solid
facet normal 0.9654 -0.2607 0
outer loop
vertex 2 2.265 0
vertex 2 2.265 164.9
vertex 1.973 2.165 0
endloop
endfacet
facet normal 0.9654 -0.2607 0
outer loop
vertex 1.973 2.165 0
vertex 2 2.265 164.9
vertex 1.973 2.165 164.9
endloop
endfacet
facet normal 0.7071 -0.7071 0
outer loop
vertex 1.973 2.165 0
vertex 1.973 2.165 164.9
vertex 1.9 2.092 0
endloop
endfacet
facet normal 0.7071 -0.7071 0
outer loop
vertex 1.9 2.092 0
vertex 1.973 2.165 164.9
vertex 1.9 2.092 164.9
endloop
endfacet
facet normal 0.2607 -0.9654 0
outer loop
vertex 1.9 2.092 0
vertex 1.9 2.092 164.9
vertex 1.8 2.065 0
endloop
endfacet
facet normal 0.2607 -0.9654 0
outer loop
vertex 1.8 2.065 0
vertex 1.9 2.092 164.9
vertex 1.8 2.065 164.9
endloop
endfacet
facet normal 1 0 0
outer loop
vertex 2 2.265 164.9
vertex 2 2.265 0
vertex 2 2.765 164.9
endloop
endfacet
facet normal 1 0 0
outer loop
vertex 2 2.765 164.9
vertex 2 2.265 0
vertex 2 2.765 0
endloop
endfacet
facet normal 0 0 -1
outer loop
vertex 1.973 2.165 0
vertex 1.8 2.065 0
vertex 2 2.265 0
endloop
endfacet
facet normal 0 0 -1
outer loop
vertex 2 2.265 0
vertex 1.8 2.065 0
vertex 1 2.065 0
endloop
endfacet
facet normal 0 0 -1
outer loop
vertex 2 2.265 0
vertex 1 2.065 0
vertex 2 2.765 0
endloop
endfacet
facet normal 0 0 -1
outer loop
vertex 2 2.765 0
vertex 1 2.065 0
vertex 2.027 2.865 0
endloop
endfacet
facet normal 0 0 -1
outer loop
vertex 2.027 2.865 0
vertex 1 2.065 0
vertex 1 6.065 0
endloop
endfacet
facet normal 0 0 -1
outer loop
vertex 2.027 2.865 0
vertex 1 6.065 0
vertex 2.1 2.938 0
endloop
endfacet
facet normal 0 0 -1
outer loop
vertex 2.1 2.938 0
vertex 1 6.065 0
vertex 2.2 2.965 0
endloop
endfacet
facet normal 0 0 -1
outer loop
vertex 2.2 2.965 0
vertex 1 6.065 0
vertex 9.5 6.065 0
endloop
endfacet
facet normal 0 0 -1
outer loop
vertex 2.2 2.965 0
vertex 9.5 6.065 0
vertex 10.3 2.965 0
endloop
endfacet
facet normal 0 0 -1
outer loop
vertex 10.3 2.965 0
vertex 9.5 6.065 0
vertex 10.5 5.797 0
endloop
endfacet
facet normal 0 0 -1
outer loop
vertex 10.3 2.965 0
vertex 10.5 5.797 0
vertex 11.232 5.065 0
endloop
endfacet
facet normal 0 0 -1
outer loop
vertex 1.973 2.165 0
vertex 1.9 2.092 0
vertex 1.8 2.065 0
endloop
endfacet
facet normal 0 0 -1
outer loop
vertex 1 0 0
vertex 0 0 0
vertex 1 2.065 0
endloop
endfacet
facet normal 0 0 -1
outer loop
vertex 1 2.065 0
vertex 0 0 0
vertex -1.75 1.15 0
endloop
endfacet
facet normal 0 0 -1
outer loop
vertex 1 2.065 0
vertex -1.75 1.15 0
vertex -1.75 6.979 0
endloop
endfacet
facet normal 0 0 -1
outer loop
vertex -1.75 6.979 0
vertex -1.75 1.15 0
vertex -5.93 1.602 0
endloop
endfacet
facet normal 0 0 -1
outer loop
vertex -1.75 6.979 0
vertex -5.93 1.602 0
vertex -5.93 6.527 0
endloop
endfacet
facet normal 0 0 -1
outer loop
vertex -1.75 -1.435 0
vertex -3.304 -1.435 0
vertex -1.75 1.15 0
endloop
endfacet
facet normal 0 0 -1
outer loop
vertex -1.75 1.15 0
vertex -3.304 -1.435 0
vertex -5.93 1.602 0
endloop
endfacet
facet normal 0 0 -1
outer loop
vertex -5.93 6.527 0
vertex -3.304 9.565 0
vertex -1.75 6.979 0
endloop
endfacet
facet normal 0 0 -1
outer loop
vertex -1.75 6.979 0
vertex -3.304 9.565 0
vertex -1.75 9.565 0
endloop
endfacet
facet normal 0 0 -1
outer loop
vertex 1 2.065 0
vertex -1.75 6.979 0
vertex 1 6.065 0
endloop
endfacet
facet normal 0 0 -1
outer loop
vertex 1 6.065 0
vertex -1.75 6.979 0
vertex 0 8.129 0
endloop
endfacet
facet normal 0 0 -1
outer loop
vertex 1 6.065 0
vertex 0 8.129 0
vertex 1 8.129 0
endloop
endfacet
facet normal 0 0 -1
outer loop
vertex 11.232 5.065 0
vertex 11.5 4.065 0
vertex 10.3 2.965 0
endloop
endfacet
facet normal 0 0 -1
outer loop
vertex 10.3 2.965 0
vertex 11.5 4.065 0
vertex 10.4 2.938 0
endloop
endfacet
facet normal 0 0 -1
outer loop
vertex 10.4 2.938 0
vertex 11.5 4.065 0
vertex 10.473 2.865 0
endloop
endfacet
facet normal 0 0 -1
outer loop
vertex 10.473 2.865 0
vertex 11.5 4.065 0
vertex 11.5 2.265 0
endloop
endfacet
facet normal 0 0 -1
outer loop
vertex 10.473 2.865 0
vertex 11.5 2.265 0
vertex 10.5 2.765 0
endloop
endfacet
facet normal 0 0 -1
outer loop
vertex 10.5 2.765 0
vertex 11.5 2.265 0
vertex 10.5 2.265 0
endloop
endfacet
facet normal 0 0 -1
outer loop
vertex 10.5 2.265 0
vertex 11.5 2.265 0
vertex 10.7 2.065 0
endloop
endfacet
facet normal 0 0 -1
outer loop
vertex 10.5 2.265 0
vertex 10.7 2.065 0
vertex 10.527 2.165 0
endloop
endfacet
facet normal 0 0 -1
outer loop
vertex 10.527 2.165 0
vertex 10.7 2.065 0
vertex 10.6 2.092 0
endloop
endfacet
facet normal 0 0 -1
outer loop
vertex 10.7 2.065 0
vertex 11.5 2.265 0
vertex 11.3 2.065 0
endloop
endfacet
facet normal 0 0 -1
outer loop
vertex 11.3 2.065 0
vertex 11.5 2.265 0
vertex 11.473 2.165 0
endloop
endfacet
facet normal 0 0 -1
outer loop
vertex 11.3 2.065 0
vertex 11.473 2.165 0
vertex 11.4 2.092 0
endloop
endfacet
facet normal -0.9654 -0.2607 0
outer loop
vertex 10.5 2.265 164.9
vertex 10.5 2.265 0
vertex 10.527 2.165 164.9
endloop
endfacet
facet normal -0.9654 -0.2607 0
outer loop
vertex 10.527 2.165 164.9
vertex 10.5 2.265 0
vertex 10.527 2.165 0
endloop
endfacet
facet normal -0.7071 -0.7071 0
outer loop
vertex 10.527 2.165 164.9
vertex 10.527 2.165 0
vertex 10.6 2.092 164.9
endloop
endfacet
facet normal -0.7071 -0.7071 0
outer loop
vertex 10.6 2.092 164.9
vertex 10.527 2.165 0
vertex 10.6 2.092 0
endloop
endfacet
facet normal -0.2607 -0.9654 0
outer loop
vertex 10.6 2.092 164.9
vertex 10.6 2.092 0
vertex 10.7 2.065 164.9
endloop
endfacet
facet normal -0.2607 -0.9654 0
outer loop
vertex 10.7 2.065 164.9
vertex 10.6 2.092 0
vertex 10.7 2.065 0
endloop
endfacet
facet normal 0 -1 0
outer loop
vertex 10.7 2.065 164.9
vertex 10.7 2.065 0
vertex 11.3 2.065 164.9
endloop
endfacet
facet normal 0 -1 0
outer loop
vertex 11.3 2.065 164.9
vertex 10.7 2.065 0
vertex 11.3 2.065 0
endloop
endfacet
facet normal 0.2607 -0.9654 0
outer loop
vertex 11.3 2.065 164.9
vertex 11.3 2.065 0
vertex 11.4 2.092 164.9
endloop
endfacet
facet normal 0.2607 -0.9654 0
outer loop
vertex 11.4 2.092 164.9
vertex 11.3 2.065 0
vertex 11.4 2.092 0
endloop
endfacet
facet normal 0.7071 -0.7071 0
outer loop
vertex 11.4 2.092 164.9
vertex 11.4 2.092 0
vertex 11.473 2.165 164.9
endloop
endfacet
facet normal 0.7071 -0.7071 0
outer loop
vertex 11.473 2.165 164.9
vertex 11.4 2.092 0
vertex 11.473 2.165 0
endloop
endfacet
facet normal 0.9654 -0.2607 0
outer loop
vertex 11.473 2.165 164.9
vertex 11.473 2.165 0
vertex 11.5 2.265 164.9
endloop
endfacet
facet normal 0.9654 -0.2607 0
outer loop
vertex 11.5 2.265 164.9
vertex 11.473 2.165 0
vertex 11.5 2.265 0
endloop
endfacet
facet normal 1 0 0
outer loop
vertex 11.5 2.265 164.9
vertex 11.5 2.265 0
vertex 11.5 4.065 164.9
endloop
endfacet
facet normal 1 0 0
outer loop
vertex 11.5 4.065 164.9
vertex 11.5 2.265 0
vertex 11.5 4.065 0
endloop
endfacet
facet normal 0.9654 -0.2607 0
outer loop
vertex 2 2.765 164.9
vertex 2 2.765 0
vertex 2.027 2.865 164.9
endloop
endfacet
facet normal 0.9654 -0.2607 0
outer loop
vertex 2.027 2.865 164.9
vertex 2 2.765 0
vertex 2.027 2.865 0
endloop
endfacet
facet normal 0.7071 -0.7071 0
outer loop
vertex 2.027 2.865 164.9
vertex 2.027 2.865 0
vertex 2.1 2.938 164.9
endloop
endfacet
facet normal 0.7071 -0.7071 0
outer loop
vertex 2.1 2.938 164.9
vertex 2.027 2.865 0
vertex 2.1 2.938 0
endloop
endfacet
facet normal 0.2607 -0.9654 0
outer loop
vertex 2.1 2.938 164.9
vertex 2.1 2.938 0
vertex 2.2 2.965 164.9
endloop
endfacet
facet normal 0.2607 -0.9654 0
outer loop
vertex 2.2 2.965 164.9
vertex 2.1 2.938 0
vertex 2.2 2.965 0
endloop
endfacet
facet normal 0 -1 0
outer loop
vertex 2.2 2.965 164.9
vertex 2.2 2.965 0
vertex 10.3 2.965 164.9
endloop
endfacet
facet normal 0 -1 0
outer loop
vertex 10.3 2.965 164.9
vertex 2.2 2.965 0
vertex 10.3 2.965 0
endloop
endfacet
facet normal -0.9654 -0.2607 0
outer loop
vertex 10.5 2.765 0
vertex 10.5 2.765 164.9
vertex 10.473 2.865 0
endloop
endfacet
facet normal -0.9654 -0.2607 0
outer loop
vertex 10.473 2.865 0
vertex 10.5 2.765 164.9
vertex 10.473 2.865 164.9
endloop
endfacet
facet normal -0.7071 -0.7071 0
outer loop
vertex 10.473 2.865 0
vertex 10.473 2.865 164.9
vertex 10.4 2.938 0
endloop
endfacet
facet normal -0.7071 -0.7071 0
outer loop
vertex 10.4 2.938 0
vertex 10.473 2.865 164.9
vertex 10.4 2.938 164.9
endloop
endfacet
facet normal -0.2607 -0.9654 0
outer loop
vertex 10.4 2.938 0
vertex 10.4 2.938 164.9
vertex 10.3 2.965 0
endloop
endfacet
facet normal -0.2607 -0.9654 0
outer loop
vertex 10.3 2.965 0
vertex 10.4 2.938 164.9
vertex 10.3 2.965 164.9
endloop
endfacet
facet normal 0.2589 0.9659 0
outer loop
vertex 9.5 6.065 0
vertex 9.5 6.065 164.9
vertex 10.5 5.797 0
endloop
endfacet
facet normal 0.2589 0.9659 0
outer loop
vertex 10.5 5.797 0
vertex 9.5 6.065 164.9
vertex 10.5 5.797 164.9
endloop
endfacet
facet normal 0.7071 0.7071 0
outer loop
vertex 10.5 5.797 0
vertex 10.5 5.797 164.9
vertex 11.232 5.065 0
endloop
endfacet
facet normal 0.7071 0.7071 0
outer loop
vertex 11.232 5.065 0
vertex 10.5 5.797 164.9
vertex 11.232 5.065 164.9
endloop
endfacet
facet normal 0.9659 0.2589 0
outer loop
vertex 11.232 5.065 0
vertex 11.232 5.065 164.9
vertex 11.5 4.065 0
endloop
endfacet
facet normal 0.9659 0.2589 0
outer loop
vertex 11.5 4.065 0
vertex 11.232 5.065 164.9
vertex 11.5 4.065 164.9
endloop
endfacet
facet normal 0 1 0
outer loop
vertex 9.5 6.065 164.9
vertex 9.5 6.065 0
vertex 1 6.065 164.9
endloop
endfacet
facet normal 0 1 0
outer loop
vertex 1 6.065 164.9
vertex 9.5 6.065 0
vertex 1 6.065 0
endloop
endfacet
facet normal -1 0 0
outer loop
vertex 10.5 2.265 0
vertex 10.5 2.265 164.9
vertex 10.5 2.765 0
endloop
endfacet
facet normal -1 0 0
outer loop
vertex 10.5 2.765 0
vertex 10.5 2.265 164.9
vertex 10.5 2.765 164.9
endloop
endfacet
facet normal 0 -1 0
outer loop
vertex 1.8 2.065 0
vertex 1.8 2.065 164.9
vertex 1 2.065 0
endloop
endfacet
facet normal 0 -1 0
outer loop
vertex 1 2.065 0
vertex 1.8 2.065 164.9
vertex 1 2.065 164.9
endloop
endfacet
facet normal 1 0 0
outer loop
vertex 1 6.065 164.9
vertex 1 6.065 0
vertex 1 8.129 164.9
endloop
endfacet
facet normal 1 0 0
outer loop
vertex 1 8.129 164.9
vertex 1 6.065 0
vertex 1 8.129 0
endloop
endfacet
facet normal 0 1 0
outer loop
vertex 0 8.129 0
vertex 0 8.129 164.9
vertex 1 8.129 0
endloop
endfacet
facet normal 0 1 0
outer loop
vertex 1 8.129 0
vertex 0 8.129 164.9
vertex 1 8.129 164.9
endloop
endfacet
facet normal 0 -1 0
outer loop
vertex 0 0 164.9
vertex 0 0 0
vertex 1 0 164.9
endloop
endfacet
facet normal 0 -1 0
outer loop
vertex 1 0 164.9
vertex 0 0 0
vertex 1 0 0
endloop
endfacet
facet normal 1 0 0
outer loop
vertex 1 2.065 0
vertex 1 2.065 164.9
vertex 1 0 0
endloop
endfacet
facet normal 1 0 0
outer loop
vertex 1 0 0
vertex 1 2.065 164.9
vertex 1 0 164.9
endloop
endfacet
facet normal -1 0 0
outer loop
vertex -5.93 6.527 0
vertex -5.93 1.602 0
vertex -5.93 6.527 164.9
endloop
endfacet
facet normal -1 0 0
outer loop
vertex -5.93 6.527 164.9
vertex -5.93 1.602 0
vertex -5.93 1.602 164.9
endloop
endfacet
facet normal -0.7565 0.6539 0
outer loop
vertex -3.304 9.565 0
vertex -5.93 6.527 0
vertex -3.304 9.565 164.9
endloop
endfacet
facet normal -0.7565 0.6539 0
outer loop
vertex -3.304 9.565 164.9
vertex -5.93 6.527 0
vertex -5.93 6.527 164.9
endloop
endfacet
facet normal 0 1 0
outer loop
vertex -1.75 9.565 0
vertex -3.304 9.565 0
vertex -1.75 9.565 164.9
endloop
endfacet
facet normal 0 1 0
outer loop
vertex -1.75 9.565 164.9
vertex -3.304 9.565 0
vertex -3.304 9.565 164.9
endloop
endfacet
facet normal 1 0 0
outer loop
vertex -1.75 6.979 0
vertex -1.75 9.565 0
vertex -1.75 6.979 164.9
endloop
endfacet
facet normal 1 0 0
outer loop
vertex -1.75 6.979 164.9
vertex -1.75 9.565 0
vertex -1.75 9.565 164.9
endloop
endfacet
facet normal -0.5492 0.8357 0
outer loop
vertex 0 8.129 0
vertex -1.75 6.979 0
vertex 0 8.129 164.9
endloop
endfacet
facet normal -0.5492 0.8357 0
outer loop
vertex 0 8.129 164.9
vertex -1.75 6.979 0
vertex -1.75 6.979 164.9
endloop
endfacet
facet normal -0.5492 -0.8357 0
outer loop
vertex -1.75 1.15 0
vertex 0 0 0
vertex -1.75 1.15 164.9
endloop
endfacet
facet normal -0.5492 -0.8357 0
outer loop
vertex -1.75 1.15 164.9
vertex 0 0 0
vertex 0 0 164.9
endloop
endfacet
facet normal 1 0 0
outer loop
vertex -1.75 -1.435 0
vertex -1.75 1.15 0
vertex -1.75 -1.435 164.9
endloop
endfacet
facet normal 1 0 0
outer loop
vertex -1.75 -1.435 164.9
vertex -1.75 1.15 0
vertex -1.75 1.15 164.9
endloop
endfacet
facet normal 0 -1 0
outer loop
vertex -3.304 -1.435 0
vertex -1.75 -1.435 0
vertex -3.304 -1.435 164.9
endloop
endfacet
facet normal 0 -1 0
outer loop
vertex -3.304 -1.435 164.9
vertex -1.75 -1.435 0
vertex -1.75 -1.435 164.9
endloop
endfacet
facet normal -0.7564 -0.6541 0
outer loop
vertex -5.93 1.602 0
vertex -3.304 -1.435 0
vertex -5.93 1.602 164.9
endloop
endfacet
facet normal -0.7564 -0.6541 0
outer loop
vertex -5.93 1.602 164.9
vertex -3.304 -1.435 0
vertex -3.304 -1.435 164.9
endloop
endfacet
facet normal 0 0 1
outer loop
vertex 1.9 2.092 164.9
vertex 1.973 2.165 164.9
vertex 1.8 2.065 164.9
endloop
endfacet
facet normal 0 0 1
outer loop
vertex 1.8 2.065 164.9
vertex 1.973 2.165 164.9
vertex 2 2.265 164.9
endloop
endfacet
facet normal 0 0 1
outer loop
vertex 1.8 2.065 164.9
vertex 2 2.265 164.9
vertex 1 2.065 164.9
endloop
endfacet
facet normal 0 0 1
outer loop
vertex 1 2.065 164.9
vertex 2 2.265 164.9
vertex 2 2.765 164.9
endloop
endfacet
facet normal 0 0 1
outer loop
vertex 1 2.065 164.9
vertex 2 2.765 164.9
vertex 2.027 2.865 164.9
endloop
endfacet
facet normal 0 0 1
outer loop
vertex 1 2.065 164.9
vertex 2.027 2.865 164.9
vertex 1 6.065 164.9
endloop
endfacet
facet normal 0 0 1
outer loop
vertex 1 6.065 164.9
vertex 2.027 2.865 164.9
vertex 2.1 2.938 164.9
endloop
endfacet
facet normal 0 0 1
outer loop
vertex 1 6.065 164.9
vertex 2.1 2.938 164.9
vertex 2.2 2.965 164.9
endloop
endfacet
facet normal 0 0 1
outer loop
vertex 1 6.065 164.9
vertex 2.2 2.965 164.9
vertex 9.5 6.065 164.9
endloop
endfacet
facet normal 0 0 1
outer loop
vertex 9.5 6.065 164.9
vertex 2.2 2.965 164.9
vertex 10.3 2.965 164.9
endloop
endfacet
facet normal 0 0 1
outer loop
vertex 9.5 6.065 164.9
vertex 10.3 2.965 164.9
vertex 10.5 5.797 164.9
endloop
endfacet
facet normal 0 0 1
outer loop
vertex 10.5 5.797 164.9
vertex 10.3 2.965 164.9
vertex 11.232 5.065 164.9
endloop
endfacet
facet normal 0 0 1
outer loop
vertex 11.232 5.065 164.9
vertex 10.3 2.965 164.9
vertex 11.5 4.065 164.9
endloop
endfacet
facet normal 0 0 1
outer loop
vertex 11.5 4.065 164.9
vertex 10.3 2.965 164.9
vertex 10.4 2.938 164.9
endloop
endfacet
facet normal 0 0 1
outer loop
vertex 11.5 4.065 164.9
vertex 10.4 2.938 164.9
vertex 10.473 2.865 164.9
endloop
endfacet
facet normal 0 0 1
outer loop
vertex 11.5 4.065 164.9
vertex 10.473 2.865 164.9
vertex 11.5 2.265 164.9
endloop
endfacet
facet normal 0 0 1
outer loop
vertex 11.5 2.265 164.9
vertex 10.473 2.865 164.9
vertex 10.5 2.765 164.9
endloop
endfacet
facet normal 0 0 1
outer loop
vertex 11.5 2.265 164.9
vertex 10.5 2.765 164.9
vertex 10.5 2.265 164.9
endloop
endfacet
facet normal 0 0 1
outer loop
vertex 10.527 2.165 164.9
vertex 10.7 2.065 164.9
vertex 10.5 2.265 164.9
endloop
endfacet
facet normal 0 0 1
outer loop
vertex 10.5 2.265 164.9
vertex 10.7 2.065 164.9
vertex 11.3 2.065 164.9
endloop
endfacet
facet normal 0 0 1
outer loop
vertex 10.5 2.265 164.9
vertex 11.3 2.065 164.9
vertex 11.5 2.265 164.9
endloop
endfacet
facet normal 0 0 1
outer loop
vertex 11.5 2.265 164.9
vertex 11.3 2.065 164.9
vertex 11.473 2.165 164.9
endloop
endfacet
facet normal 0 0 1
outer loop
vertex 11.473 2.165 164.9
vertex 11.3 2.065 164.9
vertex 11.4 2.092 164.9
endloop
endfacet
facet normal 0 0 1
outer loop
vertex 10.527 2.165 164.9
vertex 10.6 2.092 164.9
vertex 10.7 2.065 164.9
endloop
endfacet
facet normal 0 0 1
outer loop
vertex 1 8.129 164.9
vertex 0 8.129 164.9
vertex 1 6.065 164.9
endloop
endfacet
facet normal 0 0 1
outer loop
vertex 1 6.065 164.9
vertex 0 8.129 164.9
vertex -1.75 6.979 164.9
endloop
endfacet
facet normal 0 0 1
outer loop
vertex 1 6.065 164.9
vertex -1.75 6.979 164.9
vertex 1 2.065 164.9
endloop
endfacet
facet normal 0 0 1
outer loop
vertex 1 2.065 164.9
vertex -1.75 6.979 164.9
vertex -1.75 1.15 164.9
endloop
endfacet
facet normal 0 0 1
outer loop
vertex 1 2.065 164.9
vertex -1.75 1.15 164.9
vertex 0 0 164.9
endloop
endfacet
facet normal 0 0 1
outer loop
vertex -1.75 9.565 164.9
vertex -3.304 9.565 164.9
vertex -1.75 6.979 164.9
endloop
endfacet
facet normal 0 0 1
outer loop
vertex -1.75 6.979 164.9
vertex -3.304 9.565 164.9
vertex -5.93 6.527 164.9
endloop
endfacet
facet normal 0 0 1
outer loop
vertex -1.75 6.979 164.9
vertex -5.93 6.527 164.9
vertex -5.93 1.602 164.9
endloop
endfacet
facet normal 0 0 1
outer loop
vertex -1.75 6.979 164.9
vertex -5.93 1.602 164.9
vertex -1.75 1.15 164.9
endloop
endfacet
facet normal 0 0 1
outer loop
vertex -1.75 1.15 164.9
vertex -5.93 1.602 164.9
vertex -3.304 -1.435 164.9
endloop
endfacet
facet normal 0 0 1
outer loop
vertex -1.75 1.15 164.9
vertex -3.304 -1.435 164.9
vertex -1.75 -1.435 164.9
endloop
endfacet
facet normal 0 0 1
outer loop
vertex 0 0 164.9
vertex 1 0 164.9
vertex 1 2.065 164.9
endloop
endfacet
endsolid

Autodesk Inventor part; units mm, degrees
ref_plane "YZ Plane" through (0, 0, 0) normal (1, 0, 0) x (0, 1, 0)
ref_plane "XZ Plane" through (0, 0, 0) normal (0, 1, 0) x (-1, 0, 0)
ref_plane "XY Plane" through (0, 0, 0) normal (0, 0, 1) x (1, 0, 0)
sketch "Sketch1" plane through (0, 0, 0) normal (0, 0, 1) x (1, 0, 0)
  line L0 (0.0426, 8.3509) -> (2.1366, 8.3509) construction
  line L1 (-5.93, 6.5274) -> (-3.3043, 9.5646)
  line L2 (-3.3043, 9.5646) -> (-1.75, 9.5646)
  line L3 (-1.75, 9.5646) -> (-1.75, 6.9793)
  line L4 (-1.75, 6.9793) -> (0, 8.1293)
  line L5 (0, 8.1293) -> (0, 0)
  line L6 (0, 0) -> (-1.75, 1.15)
  line L7 (-1.75, 1.15) -> (-1.75, -1.4354)
  line L8 (-1.75, -1.4354) -> (-3.3043, -1.4354)
  line L9 (-3.3043, -1.4354) -> (-5.93, 1.6019)
  line L10 (-5.93, 1.6019) -> (-5.93, 6.5274)
  dimension "d16" = 0
  dimension "d17" = 0
extrude "Extrusion1" add sketch "Sketch1" along normal blind 164.9
sketch "Sketch2" plane through (0, 0, 0) normal (1, 0, 0) x (0, 0, -1)
  line L0 (0, 8.1293) -> (-164.9, 8.1293) projected
  line L1 (0, 0) -> (0, 8.1293) projected
  line L2 (-164.9, 8.1293) -> (0, 8.1293)
  line L3 (0, 8.1293) -> (0, 0)
  line L4 (0, 0) -> (-164.9, 0)
  line L5 (-164.9, 0) -> (-164.9, 8.1293)
extrude "Extrusion2" add sketch "Sketch2" along normal blind 1
sketch "Sketch3" plane through (1, 0, 0) normal (1, 0, 0) x (0, 0, -1)
  line L0 (-164.9, 8.1293) -> (-164.9, 0) projected
  line L1 (0, 2.065) -> (-164.9, 2.065)
  line L2 (-164.9, 2.065) -> (-164.9, 6.065)
  line L3 (-164.9, 6.065) -> (0, 6.065)
  line L4 (0, 6.065) -> (0, 2.065)
  line L5 (0, 2.065) -> (-164.9, 6.065) construction
  line L6 (-164.9, 2.065) -> (0, 6.065) construction
  line L7 (0, 0) -> (0, 8.1293) projected
  point P0 (-82.45, 4.065)
  dimension "d22" = 4
  dimension "d28" = 0
extrude "Extrusion3" add sketch "Sketch3" along normal blind 10.5
sketch "Sketch4" plane through (1, 2.065, 0) normal (0, -1, 0) x (1, 0, 0)
  point P0 (-1, 0)
sketch "Sketch5" plane through (1, 2.065, 0) normal (0, -1, 0) x (1, 0, 0)
  line L0 (0, 164.9) -> (10.5, 164.9) projected
  line L1 (9.5, -0.1) -> (1, -0.1)
  line L2 (1, -0.1) -> (1, 164.9)
  line L3 (1, 164.9) -> (9.5, 164.9)
  line L4 (9.5, 164.9) -> (9.5, -0.1)
  line L5 (9.5, -0.1) -> (1, 164.9) construction
  line L6 (1, -0.1) -> (9.5, 164.9) construction
  point P0 (-1, 0)
  point P1 (5.25, 82.4)
  dimension "d25" = 8.5
extrude "Extrusion4" cut sketch "Sketch5" against normal blind 0.9
fillet "Fillet1" radius 2 1 edges at (11.5, 6.065, 82.45)
fillet "Fillet2" radius 0.2 1 edges at (10.5, 2.965, 82.45)
fillet "Fillet3" radius 0.2 1 edges at (2, 2.965, 82.45)
fillet "Fillet4" radius 0.2 3 edges at (11.5, 2.065, 82.45) (10.5, 2.065, 82.45) (2, 2.065, 82.45)
properties part number "LED Strip Top Mount"
